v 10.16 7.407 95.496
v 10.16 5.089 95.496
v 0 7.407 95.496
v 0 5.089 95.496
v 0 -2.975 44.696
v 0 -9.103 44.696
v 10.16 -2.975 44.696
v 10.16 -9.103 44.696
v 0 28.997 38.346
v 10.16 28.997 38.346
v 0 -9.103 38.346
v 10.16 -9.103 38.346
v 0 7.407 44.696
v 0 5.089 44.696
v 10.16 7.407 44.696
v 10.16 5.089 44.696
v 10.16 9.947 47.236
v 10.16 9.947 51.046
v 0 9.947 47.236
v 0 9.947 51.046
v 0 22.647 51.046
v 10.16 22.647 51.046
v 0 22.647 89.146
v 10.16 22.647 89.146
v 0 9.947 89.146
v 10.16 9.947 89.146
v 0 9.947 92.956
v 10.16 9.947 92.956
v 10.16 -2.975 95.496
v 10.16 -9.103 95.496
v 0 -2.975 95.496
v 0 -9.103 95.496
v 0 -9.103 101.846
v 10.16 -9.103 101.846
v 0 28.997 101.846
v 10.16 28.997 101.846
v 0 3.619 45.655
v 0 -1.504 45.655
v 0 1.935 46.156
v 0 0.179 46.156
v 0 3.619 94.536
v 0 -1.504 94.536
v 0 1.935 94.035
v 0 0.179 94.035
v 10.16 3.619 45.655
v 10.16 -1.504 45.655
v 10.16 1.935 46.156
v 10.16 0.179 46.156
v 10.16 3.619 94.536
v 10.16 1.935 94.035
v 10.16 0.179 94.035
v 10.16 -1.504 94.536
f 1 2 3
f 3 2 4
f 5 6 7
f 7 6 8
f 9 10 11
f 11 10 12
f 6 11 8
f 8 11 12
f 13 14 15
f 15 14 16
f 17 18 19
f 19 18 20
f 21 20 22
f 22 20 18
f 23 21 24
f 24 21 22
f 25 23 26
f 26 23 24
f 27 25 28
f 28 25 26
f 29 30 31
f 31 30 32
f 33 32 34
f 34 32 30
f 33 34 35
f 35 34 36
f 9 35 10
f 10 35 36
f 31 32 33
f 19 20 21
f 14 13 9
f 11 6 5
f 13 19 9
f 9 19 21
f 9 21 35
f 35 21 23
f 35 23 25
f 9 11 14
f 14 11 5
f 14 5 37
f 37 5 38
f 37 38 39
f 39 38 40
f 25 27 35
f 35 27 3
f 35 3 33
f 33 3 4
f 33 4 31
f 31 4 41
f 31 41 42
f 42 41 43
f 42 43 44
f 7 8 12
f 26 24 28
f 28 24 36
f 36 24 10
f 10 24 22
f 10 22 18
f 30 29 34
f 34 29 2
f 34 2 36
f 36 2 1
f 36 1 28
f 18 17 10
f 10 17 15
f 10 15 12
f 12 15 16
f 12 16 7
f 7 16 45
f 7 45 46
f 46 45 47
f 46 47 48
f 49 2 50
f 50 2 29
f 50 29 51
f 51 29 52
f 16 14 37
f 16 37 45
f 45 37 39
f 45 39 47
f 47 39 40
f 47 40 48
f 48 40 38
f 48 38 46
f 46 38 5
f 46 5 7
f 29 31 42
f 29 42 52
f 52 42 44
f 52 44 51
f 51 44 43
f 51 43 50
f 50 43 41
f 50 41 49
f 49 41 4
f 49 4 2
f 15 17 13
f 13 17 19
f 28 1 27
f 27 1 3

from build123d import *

# Parameters (mm, degrees)
BOSS_EXTRUDE1_DEPTH = 10.16
BOSS_EXTRUDE2_DEPTH = 10.16
CHAMFER1_SIZE       = 2.54


with BuildPart() as part:
    # Sketch3 → Boss-Extrude1 (new body)
    with BuildSketch(Plane(origin=(0, 0, 0), x_dir=(0, 0, -1), z_dir=(1, 0, 0))):
        Polygon((-101.845577666, -9.102652747), (-95.495577666, -9.102652747), (-95.495577666, 9.947347253), (-89.145577666, 9.947347253), (-89.145577666, 22.647347253), (-51.045577666, 22.647347253), (-51.045577666, 9.947347253), (-44.695577666, 9.947347253), (-44.695577666, -9.102652747), (-38.345577666, -9.102652747), (-38.345577666, 28.997347253), (-101.845577666, 28.997347253), align=None)
    extrude(amount=BOSS_EXTRUDE1_DEPTH)

    # Sketch4 → Boss-Extrude2 (add)
    with BuildSketch(Plane(origin=(10.16, 0, 0), x_dir=(0, 0, -1), z_dir=(1, 0, 0))):
        with BuildLine():
            Line((-101.845577666, -4.773598811), (-101.845577666, 6.888293317))
            ThreePointArc((-101.845577666, 6.888293317), (-93.971577666, 1.057347253), (-101.845577666, -4.773598811))
        make_face()
        with BuildLine():
            Line((-38.345577666, -4.773598811), (-38.345577666, 6.888293317))
            ThreePointArc((-38.345577666, 6.888293317), (-46.219577666, 1.057347253), (-38.345577666, -4.773598811))
        make_face()
    extrude(amount=-BOSS_EXTRUDE2_DEPTH)

    # Chamfer1
    chamfer1_edges = [part.edges().sort_by_distance(p)[0] for p in [
        (5.08, 9.947347253, 44.695577666),
        (5.08, 9.947347253, 95.495577666),
    ]]
    chamfer(chamfer1_edges, length=CHAMFER1_SIZE)


solid = part.part
